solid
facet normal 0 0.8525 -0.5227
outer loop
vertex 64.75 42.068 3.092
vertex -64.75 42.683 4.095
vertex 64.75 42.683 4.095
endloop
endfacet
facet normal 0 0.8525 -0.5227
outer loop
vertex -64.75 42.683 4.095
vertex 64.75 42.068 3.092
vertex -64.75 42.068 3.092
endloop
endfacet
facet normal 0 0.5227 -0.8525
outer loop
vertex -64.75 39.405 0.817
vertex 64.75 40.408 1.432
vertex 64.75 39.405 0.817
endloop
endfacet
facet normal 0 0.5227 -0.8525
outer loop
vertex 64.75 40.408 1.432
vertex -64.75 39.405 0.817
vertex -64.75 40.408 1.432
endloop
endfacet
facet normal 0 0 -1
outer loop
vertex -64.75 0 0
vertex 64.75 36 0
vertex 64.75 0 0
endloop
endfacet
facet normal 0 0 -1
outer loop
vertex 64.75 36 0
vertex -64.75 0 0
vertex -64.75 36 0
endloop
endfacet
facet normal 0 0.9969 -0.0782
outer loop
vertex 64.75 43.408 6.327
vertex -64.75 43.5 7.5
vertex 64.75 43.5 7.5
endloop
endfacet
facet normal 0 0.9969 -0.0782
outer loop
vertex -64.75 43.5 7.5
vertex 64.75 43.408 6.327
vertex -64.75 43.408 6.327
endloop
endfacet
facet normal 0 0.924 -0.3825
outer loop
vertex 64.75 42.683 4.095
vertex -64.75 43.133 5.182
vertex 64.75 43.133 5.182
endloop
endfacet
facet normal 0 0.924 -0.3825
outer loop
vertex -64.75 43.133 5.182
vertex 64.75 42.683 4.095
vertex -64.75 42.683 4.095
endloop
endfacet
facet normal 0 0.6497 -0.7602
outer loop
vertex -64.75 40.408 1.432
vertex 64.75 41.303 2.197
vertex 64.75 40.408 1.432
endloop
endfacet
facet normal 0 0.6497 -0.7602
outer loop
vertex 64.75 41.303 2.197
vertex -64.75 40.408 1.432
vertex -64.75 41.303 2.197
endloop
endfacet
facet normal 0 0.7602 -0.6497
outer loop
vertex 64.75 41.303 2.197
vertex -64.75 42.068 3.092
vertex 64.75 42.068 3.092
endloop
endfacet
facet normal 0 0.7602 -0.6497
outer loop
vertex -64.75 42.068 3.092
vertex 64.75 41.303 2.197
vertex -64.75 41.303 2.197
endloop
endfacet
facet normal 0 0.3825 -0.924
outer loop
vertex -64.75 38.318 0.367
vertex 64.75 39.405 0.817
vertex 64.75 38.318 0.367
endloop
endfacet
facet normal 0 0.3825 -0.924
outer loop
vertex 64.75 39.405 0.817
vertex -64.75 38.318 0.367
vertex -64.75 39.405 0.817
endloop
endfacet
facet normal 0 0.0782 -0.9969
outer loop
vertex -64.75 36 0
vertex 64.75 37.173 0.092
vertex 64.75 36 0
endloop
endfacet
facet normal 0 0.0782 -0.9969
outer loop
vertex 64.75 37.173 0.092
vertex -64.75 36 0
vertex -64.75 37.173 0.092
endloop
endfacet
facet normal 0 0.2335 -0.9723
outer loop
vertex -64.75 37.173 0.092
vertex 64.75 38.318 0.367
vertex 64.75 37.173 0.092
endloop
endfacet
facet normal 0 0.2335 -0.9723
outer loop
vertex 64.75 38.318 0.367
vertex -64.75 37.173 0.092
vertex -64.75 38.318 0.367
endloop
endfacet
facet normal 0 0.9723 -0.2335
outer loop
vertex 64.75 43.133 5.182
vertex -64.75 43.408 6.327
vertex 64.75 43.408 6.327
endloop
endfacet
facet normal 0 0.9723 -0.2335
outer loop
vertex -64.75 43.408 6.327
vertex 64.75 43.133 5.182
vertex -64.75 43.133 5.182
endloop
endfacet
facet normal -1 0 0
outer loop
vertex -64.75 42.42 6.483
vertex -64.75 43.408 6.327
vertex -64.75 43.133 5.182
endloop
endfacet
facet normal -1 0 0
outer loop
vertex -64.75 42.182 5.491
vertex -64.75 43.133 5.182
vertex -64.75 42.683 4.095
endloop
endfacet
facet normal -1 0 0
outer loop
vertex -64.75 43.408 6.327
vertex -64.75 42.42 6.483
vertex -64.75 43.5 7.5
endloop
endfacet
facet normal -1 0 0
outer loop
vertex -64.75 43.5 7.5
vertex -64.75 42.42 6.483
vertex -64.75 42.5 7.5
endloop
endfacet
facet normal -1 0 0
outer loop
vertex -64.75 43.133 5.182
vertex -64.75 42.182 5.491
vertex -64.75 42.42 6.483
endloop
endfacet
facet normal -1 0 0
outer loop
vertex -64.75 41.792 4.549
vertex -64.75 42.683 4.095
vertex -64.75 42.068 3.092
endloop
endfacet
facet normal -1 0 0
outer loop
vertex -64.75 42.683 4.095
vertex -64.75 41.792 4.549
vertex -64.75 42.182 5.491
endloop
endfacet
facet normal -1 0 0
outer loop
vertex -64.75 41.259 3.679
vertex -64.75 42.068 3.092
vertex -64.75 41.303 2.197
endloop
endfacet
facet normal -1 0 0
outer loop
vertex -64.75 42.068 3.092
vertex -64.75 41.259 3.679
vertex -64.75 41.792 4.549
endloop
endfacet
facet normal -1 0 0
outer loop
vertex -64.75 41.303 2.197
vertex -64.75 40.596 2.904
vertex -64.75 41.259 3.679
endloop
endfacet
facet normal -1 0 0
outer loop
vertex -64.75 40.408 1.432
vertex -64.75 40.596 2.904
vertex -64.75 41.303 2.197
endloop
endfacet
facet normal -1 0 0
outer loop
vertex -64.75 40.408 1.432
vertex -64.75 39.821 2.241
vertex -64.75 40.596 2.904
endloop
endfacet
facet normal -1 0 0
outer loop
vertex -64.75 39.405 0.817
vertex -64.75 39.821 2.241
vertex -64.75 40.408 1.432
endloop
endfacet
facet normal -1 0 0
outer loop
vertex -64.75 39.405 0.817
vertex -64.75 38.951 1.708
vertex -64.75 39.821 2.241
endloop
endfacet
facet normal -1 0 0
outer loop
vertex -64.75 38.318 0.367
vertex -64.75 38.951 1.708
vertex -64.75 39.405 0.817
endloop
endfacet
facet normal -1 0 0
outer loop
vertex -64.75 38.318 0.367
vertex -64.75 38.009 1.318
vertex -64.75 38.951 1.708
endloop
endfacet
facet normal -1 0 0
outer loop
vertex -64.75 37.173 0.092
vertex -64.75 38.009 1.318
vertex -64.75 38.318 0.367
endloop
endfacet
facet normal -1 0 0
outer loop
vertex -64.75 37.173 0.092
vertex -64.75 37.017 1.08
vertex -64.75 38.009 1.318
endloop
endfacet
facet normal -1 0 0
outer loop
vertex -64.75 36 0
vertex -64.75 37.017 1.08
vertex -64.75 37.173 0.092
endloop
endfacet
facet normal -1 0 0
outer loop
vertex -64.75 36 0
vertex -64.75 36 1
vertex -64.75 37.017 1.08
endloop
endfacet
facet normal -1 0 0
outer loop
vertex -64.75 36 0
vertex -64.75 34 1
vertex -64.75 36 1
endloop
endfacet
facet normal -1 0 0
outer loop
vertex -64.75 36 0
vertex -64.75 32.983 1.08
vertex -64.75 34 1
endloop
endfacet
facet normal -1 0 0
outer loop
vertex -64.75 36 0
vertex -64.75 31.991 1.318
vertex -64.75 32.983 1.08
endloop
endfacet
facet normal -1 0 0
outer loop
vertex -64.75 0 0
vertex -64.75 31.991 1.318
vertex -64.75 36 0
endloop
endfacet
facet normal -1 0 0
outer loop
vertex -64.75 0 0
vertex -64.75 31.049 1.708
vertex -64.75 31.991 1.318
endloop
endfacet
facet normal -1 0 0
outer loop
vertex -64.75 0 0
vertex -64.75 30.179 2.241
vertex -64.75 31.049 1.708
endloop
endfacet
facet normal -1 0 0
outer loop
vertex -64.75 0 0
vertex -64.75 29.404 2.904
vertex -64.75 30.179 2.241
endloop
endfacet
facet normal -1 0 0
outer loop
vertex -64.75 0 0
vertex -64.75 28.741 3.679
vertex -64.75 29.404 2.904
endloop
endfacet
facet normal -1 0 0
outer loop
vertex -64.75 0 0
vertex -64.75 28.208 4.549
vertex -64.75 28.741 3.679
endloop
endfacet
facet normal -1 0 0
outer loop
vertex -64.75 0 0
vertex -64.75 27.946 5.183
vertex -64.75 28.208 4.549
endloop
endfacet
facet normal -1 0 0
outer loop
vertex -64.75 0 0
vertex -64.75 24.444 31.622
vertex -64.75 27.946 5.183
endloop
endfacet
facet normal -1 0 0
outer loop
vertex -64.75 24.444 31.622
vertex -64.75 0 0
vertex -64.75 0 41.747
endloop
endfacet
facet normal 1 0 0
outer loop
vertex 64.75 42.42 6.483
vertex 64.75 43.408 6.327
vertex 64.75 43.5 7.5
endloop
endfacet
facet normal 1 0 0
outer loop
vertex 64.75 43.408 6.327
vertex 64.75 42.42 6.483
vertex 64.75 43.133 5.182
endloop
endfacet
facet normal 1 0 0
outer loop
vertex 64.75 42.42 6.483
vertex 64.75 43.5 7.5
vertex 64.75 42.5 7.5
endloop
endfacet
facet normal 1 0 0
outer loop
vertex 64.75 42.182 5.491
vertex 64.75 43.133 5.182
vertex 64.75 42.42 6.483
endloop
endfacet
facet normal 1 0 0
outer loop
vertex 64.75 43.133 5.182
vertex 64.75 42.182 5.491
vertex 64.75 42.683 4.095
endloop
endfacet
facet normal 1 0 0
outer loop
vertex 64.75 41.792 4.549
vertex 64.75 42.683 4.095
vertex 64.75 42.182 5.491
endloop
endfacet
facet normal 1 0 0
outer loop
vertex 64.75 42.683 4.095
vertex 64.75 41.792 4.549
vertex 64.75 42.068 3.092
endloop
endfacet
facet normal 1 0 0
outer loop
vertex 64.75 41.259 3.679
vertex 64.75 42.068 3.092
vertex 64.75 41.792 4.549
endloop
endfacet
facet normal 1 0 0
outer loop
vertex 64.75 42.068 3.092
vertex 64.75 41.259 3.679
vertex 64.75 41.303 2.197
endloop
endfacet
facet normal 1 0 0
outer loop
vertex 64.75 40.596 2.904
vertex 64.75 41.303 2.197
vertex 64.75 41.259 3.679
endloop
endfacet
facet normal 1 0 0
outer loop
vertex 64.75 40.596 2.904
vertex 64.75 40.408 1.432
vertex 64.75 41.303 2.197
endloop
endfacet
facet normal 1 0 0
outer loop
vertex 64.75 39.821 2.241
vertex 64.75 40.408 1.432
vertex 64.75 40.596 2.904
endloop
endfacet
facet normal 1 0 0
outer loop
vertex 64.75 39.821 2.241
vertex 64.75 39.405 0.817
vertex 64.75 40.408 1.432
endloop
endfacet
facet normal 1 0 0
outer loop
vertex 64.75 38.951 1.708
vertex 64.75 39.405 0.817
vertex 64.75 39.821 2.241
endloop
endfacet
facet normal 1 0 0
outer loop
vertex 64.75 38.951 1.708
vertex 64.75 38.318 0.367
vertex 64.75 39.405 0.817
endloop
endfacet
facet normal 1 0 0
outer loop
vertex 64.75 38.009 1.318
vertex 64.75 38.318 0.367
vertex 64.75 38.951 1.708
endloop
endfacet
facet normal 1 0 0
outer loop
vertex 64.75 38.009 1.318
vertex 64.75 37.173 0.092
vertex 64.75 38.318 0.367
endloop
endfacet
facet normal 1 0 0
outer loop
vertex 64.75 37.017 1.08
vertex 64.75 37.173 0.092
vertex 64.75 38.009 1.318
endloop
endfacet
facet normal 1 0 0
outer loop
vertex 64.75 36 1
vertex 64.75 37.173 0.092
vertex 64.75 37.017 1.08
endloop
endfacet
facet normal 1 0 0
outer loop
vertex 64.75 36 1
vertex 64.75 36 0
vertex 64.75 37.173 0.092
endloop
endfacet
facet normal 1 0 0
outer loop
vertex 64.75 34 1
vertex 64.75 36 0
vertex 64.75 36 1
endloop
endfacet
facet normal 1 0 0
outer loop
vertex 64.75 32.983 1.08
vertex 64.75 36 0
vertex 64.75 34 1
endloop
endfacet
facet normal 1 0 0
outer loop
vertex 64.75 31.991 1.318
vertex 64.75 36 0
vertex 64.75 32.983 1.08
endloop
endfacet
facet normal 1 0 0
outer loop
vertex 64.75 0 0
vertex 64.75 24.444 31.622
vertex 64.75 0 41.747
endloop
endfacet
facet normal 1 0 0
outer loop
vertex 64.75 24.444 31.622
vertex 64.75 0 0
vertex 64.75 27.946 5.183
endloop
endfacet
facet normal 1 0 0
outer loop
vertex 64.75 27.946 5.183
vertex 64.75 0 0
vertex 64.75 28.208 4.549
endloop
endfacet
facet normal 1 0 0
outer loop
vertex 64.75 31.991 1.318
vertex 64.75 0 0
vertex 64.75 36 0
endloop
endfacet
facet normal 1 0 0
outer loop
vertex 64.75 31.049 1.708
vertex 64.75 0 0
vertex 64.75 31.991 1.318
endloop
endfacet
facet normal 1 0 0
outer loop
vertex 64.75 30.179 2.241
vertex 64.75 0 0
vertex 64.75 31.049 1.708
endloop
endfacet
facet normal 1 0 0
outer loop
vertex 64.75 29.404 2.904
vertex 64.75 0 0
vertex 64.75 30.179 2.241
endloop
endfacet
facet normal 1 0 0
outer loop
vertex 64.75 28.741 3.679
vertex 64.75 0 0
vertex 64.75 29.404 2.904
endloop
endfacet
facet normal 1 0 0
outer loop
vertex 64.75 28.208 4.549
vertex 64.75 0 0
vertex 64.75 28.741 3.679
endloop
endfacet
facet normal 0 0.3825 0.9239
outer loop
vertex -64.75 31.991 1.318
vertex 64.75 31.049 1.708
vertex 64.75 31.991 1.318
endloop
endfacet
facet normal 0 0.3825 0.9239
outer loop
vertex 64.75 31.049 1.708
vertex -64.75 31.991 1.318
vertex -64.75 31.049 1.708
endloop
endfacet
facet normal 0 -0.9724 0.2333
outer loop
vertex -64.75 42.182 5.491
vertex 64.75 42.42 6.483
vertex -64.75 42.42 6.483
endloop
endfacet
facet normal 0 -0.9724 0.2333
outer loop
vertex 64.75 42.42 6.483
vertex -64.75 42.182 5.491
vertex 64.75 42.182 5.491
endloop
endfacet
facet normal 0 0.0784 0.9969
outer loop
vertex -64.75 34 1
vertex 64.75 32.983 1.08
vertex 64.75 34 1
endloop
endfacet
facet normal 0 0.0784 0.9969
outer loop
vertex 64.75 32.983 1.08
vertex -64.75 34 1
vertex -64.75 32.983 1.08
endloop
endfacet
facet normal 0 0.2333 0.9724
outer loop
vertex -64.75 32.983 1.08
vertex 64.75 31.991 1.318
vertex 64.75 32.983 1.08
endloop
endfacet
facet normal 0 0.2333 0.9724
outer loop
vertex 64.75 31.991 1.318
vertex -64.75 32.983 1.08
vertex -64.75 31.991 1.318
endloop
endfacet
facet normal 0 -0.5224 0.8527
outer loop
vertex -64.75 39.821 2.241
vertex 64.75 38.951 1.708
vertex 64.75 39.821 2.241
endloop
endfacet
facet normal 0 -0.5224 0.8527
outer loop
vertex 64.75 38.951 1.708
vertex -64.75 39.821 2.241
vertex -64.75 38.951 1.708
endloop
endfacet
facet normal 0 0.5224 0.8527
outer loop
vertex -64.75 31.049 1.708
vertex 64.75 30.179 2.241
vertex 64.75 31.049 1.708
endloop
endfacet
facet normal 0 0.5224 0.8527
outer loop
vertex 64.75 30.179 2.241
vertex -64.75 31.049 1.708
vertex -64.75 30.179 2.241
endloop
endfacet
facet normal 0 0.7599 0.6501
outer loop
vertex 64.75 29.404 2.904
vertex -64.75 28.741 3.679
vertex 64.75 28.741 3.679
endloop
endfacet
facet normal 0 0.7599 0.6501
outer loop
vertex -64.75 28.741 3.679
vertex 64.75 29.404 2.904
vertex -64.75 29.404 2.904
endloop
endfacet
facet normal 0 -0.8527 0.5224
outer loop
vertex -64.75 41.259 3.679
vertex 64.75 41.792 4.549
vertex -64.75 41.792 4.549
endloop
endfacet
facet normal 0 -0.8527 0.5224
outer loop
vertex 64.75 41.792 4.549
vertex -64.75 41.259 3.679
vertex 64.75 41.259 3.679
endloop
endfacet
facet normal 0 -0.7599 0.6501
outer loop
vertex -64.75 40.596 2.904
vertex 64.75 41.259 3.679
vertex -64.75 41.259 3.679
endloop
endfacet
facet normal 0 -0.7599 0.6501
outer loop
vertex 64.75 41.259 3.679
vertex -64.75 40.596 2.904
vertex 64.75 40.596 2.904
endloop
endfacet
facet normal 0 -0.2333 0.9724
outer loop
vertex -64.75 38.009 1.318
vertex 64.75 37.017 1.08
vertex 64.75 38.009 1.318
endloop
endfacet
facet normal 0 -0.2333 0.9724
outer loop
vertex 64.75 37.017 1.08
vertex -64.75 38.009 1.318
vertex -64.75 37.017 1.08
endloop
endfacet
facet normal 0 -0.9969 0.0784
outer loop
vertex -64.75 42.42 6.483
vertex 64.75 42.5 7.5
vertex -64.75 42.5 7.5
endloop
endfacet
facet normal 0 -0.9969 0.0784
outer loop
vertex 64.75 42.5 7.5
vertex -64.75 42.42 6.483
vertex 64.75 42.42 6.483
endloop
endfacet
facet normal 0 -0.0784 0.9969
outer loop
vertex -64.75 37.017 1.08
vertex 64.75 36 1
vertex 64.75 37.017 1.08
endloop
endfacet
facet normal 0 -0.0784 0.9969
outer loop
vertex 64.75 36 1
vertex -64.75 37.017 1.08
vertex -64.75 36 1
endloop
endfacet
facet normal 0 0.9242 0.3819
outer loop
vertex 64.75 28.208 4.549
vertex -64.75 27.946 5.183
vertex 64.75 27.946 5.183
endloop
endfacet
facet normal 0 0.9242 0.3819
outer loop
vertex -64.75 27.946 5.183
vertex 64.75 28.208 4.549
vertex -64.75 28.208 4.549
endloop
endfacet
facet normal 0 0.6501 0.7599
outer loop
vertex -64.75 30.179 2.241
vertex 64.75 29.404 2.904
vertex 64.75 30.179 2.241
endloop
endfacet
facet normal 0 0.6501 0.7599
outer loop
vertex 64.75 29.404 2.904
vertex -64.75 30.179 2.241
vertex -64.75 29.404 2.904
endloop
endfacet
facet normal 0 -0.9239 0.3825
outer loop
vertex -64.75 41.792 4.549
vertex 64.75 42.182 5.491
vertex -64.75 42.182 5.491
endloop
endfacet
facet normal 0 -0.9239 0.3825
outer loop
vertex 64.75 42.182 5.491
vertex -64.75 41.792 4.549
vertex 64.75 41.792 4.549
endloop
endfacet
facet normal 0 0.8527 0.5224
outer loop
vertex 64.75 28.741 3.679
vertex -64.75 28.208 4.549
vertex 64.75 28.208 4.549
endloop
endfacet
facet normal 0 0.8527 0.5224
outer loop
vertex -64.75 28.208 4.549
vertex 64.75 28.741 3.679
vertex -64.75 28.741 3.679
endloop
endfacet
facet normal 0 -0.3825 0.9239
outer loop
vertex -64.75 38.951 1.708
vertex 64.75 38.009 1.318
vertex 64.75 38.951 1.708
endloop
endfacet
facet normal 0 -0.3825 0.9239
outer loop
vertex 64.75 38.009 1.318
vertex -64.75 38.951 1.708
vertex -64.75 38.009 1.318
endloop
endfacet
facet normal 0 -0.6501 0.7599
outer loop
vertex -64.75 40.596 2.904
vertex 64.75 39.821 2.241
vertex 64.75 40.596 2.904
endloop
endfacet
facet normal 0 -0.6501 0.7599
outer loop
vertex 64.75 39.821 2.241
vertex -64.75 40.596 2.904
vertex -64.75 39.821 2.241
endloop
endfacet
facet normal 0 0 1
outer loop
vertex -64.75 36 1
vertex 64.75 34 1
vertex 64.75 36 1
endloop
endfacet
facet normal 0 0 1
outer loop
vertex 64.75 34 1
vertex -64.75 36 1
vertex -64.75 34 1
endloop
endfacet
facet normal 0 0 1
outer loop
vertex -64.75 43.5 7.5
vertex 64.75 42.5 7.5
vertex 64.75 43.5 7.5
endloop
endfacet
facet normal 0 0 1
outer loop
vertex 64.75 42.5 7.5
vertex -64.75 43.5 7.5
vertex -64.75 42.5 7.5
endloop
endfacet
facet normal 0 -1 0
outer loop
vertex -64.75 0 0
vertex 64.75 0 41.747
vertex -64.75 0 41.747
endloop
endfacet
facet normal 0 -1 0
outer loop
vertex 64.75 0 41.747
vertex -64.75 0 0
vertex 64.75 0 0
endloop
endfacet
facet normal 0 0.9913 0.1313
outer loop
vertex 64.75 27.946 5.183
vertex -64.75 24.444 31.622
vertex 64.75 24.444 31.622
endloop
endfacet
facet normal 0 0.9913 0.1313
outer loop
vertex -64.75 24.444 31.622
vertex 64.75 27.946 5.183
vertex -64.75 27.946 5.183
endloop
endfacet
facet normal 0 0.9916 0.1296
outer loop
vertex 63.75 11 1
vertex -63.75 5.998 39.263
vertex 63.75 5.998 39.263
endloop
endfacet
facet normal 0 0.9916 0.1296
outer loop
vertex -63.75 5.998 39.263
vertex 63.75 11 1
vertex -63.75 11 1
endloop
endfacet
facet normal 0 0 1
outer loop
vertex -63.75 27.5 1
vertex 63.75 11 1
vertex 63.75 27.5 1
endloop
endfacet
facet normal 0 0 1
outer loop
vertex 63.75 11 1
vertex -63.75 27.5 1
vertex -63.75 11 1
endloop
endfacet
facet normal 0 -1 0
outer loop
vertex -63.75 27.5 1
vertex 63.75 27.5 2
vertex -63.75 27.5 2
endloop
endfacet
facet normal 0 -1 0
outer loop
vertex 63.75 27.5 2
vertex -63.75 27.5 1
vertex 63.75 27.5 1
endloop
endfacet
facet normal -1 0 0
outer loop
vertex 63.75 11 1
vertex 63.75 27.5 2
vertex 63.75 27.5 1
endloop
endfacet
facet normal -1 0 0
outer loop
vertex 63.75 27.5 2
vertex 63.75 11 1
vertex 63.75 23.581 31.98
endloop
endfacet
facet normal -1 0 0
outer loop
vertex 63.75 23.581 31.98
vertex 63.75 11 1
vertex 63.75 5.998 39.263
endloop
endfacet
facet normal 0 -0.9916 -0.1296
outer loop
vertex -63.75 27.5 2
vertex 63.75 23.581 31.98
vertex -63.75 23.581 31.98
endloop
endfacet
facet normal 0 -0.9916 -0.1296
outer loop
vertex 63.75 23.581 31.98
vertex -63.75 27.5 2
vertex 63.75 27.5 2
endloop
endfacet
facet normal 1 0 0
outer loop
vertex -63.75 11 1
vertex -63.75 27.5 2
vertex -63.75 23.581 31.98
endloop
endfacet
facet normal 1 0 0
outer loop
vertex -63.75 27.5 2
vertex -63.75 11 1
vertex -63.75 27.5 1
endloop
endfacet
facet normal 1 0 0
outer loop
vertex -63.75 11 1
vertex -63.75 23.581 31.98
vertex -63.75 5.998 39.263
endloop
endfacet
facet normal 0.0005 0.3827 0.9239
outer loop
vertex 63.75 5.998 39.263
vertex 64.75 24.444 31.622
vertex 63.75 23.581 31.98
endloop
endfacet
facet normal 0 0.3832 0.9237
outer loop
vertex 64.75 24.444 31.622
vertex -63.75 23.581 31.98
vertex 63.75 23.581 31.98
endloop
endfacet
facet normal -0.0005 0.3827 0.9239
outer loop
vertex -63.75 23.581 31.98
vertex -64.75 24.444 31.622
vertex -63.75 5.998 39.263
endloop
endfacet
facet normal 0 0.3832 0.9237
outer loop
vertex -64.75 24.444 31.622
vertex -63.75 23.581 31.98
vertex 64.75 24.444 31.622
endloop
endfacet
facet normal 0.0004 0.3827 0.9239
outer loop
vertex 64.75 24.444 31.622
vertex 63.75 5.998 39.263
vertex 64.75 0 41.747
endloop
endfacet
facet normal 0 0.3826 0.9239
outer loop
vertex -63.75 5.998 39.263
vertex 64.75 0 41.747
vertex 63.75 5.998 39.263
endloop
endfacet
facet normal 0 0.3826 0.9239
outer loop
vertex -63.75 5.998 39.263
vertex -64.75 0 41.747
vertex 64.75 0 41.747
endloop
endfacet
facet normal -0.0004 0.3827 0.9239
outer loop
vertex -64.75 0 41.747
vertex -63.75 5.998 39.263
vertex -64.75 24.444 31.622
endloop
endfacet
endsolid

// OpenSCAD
// Wall Mounted Multi Card Holder Extention
// By Brian Khuu 2022-04-22
// Dev Note: Originally for businesscard, but modified for OffersAndNeeds 3D printed wall
$fn = 40;

print_layer_height = 0.2; //< This is the value you used when printing the main holder. This will indicate the amount of gap needed for the mounting slot

// Index Card
// 76 x 127mm (More like 126mm width when measured)
businesscard_width = 127.5; // 127mm (Plus 0.5 tol)
businesscard_height = 76.5; // 76mm (add 0.5mm tol)
businesscard_thickness = 1.5; // 0.25mm for thin paper cards. 0.8mm for thick plastic cards. We need to add extra thickness to account for layer droop

// Holder
wall_spacing = 2;
wall_card_grip = 20;

// Calc
wall_base = print_layer_height*3+0.1;
wall_top = print_layer_height*3+0.1;
wall_height = wall_base + businesscard_thickness + wall_top*2;

// Main Holder
holder_thickness = 1.0;
holder_slot_depth = businesscard_thickness*11; // 10 business cards (1 businesscard tolerance)
holder_slot_shift = 10;
difference()
{
    // Bulk
    union()
    {
        hull()
        {
            translate([-(businesscard_width+holder_thickness*2)/2, 0, businesscard_height-holder_thickness])
                cube([(businesscard_width+holder_thickness*2), holder_slot_depth+holder_thickness*2, 1]);
            translate([-(businesscard_width+holder_thickness*2)/2, 0, 0])
                cube([(businesscard_width+holder_thickness*2), holder_slot_depth+holder_thickness*2+holder_slot_shift, 1]);
                
            
        }
        // Pen Cut
        intersection()
        {
            penHolder_thickness = 1;
            penHolder_pendia = 13;
            penHolder_outerdia = penHolder_pendia+penHolder_thickness*2;
            penHolder_innerdia = penHolder_pendia;
            difference()
            {
                hull()
                {
                    translate([0,holder_slot_depth+holder_thickness*2+holder_slot_shift,penHolder_outerdia/2])
                        rotate([0,90,0])
                            cylinder(d=penHolder_outerdia, h=(businesscard_width+holder_thickness*2), center=true);
                    translate([0,holder_slot_depth+holder_thickness*2+holder_slot_shift+penHolder_outerdia/2,penHolder_outerdia/2])
                        rotate([0,90,0])
                            cylinder(d=penHolder_outerdia, h=(businesscard_width+holder_thickness*2), center=true);
                }
                hull()
                {
                    translate([0,holder_slot_depth+holder_thickness*2+holder_slot_shift+penHolder_innerdia/2+penHolder_thickness-2,penHolder_innerdia/2+penHolder_thickness])
                        rotate([0,90,0])
                            cylinder(d=penHolder_innerdia, h=businesscard_width+holder_thickness*2+1, center=true);
                    translate([0,holder_slot_depth+holder_thickness*2+holder_slot_shift+penHolder_innerdia/2+penHolder_thickness,penHolder_innerdia/2+penHolder_thickness])
                        rotate([0,90,0])
                            cylinder(d=penHolder_innerdia, h=businesscard_width+holder_thickness*2+1, center=true);
                }
            }
            translate([0,holder_slot_depth+holder_thickness*2+holder_slot_shift+penHolder_thickness,penHolder_outerdia/4])
            cube([businesscard_width+holder_thickness*2,penHolder_outerdia*2,penHolder_outerdia/2],center=true);
        }
    }

    // Card
    hull()
    {
        translate([-(businesscard_width)/2, holder_thickness, holder_thickness+businesscard_height])
            cube([(businesscard_width), holder_slot_depth, 1]);
        translate([-(businesscard_width)/2, holder_thickness+holder_slot_shift, holder_thickness])
            cube([(businesscard_width), holder_slot_depth, 1]);
    }
    
    // Slot Cut
    hull()
    {
        translate([0, (holder_slot_depth+holder_thickness*3)/2, businesscard_height/2])
            rotate([-45/2,0,0])
            cube([(businesscard_width*2), holder_slot_depth*2, 1], center=true);
        translate([0, (holder_slot_depth+holder_thickness*3)/2, businesscard_height])
            rotate([0,0,0])
            cube([(businesscard_width*2), holder_slot_depth*2, 1], center=true);
    }
}
